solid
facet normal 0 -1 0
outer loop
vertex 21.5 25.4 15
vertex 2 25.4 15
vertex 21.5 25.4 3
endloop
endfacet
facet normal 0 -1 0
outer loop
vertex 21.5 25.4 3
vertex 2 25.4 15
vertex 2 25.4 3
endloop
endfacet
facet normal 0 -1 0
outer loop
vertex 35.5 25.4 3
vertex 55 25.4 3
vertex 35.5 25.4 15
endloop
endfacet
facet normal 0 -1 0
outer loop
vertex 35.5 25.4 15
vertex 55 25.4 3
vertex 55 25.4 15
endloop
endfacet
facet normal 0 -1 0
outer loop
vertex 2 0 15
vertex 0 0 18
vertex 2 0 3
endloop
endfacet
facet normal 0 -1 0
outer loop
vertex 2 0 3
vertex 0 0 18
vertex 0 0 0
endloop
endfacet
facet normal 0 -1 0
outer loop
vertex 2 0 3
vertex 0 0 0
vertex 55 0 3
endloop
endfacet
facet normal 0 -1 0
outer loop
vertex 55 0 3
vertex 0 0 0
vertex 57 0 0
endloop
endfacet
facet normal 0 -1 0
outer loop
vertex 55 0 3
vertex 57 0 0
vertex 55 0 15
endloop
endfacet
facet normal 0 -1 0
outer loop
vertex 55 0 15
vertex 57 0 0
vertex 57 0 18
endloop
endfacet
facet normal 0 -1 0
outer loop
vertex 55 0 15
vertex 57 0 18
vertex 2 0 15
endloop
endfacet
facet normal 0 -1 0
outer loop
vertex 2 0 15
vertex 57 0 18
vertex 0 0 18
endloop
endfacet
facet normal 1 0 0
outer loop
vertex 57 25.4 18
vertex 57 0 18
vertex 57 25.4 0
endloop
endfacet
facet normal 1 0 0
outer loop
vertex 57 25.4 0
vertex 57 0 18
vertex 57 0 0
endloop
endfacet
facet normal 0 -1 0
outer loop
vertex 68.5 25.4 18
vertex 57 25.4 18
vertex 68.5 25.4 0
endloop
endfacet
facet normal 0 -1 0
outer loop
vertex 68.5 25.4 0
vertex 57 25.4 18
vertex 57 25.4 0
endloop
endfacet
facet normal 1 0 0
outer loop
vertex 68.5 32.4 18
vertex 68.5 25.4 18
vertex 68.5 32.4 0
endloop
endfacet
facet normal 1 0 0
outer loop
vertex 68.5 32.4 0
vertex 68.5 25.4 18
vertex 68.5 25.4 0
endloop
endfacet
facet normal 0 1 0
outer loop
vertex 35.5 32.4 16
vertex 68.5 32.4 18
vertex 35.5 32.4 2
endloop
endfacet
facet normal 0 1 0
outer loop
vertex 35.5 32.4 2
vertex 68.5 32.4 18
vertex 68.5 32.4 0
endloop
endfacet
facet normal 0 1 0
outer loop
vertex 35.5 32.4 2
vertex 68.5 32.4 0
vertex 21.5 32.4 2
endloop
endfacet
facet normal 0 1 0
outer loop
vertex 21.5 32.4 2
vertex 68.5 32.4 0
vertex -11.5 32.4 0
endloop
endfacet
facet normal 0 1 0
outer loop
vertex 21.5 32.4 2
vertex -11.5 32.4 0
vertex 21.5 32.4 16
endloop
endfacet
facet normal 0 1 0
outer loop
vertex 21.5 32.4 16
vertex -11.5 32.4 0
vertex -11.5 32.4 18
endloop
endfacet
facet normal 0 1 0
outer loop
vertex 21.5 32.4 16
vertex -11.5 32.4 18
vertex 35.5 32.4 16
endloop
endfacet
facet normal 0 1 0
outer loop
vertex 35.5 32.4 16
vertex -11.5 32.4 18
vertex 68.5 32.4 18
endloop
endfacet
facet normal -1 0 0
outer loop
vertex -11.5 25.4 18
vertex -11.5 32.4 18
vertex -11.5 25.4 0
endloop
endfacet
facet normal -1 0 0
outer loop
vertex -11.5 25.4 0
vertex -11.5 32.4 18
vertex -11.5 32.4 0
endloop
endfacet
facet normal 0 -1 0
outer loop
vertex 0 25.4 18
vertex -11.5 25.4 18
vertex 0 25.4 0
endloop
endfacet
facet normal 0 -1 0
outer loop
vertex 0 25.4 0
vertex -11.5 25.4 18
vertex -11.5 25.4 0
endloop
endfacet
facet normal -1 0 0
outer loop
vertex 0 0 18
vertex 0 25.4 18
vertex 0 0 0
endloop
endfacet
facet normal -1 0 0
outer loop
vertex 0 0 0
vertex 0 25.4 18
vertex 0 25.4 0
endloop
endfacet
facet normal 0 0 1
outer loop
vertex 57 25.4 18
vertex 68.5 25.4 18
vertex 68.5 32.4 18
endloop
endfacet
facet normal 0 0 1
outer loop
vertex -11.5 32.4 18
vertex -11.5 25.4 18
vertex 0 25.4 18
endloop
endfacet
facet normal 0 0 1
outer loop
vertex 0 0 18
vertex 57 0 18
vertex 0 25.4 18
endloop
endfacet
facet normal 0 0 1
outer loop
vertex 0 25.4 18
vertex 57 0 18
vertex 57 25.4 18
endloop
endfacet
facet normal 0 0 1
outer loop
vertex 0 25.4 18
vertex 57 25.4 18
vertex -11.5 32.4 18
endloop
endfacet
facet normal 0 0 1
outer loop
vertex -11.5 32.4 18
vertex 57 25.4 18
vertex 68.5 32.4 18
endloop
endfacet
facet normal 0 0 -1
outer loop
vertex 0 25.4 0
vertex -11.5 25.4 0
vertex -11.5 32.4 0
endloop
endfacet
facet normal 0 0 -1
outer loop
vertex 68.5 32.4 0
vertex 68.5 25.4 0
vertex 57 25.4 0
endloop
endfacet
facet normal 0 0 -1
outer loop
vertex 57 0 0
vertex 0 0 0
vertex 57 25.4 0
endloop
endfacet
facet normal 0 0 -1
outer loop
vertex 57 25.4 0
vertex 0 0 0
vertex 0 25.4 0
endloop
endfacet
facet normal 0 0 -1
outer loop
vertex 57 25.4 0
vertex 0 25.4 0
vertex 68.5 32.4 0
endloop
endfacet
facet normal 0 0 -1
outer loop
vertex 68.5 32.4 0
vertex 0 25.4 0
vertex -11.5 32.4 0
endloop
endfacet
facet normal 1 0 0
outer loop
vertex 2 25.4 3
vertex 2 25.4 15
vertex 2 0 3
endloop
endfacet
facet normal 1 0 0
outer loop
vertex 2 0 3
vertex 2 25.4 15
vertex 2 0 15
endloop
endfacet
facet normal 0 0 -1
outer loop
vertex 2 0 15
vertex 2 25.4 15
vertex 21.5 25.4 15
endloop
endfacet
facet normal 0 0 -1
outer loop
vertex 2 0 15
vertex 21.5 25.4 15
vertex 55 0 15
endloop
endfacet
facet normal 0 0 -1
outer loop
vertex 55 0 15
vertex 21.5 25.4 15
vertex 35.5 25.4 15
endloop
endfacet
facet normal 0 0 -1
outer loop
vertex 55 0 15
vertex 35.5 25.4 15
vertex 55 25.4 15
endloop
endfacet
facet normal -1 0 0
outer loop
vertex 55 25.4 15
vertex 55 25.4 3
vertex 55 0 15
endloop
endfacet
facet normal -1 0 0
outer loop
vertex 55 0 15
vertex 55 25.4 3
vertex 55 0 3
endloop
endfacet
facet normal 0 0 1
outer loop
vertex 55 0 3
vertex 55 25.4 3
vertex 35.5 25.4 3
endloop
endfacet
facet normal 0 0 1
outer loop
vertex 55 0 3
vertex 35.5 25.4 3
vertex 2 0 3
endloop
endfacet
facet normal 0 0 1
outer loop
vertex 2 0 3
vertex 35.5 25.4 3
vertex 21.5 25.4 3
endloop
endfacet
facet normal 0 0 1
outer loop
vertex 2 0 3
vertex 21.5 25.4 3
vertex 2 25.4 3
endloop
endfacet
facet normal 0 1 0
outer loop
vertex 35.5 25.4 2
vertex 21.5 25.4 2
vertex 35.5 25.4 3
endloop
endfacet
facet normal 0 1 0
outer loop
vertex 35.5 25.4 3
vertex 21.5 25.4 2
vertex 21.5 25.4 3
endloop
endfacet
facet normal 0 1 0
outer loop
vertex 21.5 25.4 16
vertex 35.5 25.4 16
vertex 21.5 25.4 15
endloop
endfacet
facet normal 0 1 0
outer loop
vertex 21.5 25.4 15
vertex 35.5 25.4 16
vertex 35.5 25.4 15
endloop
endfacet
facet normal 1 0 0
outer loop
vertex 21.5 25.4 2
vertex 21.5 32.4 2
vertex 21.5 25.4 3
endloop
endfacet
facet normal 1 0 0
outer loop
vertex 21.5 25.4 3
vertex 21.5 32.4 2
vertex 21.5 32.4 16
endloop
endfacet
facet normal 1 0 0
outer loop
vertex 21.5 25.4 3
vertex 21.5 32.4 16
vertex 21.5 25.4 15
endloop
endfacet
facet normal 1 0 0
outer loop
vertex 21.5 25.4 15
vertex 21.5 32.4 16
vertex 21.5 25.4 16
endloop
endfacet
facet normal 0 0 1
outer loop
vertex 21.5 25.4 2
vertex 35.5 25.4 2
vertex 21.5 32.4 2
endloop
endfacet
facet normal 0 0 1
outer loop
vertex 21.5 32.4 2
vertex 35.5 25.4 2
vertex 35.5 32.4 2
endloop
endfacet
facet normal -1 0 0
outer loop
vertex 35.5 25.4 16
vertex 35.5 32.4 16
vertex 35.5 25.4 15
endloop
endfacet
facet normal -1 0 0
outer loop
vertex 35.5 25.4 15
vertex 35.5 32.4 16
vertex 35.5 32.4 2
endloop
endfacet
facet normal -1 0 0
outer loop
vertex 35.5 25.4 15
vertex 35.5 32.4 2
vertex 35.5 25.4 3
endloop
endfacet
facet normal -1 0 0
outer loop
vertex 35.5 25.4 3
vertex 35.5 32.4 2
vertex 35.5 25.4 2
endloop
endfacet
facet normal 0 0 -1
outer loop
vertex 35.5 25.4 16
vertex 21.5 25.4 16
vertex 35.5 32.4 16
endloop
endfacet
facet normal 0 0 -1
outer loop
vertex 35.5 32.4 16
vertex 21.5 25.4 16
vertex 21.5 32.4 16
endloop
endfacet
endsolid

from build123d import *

# Parameters (mm, degrees)
BOSS_EXTRUDE2_DEPTH = 18
SKETCH4_W           = 53
SKETCH4_H           = 12
CUT_EXTRUDE2_DEPTH  = 25.4
SKETCH5_W           = 14
SKETCH5_H           = 14
CUT_EXTRUDE3_DEPTH  = 7


with BuildPart() as part:
    # Sketch3 → Boss-Extrude2 (new body)
    with BuildSketch(Plane.XY):
        Polygon((0, 0), (0, 25.4), (-11.5, 25.4), (-11.5, 32.4), (68.5, 32.4), (68.5, 25.4), (57, 25.4), (57, 0), align=None)
    extrude(amount=BOSS_EXTRUDE2_DEPTH)

    # Sketch4 → Cut-Extrude2 (cut)
    with BuildSketch(Plane.XZ):
        with Locations((28.5, 9)):
            Rectangle(SKETCH4_W, SKETCH4_H)
    extrude(amount=-CUT_EXTRUDE2_DEPTH, mode=Mode.SUBTRACT)

    # Sketch5 → Cut-Extrude3 (cut)
    with BuildSketch(Plane(origin=(0, 32.4, 0), x_dir=(1, 0, 0), z_dir=(0, 1, 0))):
        with Locations((28.5, -9)):
            Rectangle(SKETCH5_W, SKETCH5_H)
    extrude(amount=-CUT_EXTRUDE3_DEPTH, mode=Mode.SUBTRACT)


solid = part.part
